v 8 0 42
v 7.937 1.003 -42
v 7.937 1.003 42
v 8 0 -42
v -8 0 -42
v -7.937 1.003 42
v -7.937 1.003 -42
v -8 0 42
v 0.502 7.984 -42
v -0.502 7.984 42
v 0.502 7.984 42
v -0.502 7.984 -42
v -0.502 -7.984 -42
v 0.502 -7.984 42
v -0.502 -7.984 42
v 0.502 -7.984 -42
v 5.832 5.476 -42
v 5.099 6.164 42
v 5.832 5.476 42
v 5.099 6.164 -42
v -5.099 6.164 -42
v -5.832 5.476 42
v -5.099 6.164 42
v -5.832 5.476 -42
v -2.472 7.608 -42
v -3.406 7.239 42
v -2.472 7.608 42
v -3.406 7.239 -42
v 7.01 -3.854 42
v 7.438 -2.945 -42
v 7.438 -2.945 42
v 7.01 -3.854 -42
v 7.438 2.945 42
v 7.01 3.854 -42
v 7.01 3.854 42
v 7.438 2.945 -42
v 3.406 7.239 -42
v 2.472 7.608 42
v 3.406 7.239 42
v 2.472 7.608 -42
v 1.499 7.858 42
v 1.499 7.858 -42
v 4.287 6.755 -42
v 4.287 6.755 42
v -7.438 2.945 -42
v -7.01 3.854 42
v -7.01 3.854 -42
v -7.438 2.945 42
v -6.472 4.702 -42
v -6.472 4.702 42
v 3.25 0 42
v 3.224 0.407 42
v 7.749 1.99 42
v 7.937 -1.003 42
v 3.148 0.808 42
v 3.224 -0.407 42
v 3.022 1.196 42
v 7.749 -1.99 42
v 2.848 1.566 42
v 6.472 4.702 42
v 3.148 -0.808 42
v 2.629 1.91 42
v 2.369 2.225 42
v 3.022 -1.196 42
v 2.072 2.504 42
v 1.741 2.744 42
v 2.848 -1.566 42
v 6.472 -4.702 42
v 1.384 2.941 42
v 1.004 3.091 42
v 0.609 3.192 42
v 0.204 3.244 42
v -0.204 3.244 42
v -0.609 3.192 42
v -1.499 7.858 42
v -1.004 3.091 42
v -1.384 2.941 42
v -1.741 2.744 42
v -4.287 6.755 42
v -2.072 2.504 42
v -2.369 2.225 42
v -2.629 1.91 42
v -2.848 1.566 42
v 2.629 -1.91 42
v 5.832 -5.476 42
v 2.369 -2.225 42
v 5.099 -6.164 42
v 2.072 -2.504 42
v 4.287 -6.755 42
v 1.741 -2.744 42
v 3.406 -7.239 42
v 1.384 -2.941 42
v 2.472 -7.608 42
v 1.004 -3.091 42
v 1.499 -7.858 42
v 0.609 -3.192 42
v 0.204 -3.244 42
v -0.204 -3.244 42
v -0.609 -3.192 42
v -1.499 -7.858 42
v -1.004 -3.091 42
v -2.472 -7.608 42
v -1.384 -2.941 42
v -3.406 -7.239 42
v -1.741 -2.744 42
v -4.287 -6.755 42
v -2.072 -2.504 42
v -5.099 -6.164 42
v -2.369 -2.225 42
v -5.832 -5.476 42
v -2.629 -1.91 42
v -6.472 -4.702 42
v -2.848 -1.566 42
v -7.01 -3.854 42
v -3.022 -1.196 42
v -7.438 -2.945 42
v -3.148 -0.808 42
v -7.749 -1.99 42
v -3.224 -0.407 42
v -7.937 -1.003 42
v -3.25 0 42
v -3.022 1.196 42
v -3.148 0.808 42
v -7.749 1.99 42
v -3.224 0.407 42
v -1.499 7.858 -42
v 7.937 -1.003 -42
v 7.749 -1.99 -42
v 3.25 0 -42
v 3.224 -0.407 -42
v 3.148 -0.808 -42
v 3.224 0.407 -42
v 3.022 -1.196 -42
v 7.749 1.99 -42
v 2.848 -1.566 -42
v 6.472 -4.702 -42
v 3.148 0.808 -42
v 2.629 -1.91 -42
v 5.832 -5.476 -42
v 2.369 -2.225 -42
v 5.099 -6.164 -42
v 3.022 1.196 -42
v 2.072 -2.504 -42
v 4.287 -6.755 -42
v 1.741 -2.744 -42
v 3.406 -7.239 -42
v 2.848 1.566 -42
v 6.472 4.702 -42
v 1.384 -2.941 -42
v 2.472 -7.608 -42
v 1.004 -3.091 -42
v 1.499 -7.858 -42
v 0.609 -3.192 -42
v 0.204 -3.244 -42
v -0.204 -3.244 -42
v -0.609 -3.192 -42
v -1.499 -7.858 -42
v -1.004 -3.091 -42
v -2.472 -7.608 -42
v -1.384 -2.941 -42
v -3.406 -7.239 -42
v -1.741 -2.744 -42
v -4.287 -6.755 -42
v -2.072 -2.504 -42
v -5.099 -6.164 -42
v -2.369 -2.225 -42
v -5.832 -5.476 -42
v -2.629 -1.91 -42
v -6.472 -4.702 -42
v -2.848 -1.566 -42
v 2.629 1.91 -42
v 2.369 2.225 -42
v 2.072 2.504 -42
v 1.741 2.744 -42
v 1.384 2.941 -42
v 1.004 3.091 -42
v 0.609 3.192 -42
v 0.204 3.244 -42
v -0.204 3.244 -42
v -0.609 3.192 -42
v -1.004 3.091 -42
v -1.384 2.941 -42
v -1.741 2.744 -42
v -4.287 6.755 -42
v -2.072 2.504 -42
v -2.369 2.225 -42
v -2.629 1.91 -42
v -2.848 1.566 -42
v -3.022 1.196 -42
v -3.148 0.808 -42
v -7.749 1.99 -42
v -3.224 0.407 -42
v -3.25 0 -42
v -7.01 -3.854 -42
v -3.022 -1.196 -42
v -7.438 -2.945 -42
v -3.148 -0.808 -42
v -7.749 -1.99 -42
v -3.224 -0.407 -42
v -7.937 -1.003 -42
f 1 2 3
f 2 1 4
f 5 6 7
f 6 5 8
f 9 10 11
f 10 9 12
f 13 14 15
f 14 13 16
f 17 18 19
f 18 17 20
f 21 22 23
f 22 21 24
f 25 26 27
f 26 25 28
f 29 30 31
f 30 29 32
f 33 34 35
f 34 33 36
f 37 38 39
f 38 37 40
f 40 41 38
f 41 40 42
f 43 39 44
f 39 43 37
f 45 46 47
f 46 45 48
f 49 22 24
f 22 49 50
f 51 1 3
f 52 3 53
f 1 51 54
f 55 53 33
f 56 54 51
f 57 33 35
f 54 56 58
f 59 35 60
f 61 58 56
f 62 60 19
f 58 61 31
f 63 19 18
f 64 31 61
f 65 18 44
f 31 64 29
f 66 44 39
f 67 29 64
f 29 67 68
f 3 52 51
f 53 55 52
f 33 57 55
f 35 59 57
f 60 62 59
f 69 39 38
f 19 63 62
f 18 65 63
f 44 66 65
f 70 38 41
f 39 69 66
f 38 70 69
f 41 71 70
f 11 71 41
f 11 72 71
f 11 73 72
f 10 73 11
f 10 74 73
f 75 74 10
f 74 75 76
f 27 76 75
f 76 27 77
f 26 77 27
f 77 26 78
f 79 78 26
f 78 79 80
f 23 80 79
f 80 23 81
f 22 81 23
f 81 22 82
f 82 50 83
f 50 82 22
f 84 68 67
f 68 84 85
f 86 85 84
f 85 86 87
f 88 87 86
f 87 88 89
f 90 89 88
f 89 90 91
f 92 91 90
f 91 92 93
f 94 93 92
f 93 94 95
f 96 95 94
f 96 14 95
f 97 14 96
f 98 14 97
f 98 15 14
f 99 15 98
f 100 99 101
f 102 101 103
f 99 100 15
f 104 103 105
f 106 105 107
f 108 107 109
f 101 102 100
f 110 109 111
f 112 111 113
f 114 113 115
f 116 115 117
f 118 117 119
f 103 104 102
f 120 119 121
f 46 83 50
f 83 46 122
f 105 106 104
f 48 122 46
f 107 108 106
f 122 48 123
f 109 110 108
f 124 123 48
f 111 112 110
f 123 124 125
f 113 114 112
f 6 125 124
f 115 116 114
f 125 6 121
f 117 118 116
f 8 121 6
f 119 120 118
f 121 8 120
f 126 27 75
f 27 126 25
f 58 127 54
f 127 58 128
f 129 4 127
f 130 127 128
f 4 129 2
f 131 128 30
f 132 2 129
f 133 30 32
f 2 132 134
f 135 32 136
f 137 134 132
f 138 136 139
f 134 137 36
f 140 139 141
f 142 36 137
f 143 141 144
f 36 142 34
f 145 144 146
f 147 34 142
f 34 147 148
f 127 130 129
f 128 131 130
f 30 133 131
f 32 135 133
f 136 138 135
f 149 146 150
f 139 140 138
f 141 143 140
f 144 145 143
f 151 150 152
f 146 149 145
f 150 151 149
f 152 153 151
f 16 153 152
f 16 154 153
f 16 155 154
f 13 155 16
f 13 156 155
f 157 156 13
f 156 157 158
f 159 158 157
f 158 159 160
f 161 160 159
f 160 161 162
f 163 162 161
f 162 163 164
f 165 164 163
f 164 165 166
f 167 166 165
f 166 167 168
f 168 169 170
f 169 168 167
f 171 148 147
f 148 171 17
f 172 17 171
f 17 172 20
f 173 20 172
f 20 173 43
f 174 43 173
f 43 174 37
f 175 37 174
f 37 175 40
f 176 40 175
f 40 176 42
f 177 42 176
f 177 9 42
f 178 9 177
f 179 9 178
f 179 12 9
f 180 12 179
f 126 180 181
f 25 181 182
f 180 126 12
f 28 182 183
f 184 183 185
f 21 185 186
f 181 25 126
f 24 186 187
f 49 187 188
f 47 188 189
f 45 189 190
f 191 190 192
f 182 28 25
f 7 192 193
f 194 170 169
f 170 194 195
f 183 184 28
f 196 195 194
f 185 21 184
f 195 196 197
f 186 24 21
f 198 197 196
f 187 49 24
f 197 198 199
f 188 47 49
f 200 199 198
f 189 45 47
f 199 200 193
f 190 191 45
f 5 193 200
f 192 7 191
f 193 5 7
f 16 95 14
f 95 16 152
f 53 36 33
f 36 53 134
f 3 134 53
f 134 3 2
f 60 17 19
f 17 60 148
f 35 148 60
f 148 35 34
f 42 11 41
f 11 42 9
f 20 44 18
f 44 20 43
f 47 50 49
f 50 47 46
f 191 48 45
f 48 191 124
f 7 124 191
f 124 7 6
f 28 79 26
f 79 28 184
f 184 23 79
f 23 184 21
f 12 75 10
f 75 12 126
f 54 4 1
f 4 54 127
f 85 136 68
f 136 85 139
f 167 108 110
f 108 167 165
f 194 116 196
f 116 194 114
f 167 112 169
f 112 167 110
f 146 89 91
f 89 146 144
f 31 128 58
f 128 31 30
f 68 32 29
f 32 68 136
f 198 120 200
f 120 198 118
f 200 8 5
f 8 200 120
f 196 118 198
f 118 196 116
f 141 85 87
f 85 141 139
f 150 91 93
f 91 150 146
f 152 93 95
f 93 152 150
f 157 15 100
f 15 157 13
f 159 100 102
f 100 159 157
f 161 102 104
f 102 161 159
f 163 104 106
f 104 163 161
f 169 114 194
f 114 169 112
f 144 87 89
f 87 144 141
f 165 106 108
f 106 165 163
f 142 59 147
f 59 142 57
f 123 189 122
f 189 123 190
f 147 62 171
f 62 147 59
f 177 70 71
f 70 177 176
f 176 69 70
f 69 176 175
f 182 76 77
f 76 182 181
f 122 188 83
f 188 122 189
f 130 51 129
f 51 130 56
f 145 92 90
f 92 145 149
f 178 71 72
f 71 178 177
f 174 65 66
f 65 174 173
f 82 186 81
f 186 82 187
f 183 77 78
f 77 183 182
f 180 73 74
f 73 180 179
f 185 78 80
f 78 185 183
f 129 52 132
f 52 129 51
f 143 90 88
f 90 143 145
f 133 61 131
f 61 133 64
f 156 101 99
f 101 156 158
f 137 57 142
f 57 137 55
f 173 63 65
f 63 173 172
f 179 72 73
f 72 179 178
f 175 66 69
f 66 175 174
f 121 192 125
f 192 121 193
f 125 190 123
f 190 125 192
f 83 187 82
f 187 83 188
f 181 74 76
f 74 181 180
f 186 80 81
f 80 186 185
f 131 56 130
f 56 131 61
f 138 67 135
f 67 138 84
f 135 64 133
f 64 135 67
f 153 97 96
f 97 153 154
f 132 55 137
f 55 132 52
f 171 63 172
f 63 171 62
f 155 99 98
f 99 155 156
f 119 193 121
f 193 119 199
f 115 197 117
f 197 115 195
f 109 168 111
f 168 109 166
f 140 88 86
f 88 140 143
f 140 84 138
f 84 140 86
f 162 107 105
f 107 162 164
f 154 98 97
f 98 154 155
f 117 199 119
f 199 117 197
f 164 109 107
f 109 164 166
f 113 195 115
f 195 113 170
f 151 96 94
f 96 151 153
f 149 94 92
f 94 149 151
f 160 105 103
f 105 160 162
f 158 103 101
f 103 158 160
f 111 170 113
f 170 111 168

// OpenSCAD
$fn = 50;


difference() {
	union() {
		translate(v = [0, 0, -42.0000000000]) {
			cylinder(h = 84, r = 8.0000000000);
		}
	}
	union() {
		translate(v = [0, 0, -100.0000000000]) {
			cylinder(h = 200, r = 3.2500000000);
		}
	}
}
